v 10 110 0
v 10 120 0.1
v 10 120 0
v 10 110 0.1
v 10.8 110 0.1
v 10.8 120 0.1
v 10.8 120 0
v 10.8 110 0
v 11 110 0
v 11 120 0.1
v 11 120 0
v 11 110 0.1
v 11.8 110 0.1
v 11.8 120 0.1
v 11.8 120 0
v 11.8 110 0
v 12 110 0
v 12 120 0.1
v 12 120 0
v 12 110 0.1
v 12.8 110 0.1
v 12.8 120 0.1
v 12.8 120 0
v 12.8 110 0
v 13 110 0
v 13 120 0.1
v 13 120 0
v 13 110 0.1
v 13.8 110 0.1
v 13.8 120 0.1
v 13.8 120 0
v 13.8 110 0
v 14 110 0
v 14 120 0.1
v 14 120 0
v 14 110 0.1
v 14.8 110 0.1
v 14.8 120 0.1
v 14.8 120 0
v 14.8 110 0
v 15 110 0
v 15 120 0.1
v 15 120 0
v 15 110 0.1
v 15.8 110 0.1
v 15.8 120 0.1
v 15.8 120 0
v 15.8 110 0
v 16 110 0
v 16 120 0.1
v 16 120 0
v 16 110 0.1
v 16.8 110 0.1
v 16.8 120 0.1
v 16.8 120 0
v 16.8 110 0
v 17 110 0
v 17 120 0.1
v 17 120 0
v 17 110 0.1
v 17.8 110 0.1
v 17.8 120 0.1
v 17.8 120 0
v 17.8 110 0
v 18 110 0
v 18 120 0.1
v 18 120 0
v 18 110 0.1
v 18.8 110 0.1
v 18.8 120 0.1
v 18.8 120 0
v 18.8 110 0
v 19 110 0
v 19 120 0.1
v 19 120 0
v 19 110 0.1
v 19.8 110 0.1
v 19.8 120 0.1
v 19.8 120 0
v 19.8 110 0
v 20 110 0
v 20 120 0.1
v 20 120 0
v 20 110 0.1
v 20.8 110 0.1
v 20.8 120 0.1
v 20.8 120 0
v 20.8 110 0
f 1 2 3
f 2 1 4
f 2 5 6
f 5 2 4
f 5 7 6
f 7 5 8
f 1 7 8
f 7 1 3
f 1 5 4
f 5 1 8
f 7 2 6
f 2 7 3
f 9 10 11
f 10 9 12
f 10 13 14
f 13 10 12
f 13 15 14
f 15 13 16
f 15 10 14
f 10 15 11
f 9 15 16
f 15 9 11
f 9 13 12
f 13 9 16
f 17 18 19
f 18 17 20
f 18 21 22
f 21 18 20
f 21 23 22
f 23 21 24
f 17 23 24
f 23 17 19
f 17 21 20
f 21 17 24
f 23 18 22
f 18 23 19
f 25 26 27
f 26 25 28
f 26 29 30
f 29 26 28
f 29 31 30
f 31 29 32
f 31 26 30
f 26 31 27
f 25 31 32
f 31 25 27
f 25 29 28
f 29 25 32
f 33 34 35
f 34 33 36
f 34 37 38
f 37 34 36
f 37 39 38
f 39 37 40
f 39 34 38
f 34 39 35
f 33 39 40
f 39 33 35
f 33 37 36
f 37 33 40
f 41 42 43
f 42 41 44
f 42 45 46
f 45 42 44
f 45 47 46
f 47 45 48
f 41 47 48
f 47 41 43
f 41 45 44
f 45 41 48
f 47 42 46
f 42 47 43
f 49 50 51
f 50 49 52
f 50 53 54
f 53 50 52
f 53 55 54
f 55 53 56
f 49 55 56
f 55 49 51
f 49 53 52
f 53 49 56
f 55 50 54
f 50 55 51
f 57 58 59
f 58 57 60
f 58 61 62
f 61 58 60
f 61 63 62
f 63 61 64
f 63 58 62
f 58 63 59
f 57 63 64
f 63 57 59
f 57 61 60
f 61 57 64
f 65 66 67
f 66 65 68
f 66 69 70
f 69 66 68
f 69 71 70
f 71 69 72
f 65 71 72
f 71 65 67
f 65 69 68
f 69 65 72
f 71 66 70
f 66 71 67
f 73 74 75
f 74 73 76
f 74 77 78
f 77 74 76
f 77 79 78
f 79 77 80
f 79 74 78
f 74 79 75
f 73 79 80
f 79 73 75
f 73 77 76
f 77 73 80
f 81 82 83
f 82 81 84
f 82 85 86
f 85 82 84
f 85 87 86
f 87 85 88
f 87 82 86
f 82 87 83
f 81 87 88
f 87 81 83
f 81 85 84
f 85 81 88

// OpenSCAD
translate([10+0,10+100,0])
        for (i = [0 : 10]){
            translate([i,0,0])
                cube(size = [0.8,10,0.1]);
    }
